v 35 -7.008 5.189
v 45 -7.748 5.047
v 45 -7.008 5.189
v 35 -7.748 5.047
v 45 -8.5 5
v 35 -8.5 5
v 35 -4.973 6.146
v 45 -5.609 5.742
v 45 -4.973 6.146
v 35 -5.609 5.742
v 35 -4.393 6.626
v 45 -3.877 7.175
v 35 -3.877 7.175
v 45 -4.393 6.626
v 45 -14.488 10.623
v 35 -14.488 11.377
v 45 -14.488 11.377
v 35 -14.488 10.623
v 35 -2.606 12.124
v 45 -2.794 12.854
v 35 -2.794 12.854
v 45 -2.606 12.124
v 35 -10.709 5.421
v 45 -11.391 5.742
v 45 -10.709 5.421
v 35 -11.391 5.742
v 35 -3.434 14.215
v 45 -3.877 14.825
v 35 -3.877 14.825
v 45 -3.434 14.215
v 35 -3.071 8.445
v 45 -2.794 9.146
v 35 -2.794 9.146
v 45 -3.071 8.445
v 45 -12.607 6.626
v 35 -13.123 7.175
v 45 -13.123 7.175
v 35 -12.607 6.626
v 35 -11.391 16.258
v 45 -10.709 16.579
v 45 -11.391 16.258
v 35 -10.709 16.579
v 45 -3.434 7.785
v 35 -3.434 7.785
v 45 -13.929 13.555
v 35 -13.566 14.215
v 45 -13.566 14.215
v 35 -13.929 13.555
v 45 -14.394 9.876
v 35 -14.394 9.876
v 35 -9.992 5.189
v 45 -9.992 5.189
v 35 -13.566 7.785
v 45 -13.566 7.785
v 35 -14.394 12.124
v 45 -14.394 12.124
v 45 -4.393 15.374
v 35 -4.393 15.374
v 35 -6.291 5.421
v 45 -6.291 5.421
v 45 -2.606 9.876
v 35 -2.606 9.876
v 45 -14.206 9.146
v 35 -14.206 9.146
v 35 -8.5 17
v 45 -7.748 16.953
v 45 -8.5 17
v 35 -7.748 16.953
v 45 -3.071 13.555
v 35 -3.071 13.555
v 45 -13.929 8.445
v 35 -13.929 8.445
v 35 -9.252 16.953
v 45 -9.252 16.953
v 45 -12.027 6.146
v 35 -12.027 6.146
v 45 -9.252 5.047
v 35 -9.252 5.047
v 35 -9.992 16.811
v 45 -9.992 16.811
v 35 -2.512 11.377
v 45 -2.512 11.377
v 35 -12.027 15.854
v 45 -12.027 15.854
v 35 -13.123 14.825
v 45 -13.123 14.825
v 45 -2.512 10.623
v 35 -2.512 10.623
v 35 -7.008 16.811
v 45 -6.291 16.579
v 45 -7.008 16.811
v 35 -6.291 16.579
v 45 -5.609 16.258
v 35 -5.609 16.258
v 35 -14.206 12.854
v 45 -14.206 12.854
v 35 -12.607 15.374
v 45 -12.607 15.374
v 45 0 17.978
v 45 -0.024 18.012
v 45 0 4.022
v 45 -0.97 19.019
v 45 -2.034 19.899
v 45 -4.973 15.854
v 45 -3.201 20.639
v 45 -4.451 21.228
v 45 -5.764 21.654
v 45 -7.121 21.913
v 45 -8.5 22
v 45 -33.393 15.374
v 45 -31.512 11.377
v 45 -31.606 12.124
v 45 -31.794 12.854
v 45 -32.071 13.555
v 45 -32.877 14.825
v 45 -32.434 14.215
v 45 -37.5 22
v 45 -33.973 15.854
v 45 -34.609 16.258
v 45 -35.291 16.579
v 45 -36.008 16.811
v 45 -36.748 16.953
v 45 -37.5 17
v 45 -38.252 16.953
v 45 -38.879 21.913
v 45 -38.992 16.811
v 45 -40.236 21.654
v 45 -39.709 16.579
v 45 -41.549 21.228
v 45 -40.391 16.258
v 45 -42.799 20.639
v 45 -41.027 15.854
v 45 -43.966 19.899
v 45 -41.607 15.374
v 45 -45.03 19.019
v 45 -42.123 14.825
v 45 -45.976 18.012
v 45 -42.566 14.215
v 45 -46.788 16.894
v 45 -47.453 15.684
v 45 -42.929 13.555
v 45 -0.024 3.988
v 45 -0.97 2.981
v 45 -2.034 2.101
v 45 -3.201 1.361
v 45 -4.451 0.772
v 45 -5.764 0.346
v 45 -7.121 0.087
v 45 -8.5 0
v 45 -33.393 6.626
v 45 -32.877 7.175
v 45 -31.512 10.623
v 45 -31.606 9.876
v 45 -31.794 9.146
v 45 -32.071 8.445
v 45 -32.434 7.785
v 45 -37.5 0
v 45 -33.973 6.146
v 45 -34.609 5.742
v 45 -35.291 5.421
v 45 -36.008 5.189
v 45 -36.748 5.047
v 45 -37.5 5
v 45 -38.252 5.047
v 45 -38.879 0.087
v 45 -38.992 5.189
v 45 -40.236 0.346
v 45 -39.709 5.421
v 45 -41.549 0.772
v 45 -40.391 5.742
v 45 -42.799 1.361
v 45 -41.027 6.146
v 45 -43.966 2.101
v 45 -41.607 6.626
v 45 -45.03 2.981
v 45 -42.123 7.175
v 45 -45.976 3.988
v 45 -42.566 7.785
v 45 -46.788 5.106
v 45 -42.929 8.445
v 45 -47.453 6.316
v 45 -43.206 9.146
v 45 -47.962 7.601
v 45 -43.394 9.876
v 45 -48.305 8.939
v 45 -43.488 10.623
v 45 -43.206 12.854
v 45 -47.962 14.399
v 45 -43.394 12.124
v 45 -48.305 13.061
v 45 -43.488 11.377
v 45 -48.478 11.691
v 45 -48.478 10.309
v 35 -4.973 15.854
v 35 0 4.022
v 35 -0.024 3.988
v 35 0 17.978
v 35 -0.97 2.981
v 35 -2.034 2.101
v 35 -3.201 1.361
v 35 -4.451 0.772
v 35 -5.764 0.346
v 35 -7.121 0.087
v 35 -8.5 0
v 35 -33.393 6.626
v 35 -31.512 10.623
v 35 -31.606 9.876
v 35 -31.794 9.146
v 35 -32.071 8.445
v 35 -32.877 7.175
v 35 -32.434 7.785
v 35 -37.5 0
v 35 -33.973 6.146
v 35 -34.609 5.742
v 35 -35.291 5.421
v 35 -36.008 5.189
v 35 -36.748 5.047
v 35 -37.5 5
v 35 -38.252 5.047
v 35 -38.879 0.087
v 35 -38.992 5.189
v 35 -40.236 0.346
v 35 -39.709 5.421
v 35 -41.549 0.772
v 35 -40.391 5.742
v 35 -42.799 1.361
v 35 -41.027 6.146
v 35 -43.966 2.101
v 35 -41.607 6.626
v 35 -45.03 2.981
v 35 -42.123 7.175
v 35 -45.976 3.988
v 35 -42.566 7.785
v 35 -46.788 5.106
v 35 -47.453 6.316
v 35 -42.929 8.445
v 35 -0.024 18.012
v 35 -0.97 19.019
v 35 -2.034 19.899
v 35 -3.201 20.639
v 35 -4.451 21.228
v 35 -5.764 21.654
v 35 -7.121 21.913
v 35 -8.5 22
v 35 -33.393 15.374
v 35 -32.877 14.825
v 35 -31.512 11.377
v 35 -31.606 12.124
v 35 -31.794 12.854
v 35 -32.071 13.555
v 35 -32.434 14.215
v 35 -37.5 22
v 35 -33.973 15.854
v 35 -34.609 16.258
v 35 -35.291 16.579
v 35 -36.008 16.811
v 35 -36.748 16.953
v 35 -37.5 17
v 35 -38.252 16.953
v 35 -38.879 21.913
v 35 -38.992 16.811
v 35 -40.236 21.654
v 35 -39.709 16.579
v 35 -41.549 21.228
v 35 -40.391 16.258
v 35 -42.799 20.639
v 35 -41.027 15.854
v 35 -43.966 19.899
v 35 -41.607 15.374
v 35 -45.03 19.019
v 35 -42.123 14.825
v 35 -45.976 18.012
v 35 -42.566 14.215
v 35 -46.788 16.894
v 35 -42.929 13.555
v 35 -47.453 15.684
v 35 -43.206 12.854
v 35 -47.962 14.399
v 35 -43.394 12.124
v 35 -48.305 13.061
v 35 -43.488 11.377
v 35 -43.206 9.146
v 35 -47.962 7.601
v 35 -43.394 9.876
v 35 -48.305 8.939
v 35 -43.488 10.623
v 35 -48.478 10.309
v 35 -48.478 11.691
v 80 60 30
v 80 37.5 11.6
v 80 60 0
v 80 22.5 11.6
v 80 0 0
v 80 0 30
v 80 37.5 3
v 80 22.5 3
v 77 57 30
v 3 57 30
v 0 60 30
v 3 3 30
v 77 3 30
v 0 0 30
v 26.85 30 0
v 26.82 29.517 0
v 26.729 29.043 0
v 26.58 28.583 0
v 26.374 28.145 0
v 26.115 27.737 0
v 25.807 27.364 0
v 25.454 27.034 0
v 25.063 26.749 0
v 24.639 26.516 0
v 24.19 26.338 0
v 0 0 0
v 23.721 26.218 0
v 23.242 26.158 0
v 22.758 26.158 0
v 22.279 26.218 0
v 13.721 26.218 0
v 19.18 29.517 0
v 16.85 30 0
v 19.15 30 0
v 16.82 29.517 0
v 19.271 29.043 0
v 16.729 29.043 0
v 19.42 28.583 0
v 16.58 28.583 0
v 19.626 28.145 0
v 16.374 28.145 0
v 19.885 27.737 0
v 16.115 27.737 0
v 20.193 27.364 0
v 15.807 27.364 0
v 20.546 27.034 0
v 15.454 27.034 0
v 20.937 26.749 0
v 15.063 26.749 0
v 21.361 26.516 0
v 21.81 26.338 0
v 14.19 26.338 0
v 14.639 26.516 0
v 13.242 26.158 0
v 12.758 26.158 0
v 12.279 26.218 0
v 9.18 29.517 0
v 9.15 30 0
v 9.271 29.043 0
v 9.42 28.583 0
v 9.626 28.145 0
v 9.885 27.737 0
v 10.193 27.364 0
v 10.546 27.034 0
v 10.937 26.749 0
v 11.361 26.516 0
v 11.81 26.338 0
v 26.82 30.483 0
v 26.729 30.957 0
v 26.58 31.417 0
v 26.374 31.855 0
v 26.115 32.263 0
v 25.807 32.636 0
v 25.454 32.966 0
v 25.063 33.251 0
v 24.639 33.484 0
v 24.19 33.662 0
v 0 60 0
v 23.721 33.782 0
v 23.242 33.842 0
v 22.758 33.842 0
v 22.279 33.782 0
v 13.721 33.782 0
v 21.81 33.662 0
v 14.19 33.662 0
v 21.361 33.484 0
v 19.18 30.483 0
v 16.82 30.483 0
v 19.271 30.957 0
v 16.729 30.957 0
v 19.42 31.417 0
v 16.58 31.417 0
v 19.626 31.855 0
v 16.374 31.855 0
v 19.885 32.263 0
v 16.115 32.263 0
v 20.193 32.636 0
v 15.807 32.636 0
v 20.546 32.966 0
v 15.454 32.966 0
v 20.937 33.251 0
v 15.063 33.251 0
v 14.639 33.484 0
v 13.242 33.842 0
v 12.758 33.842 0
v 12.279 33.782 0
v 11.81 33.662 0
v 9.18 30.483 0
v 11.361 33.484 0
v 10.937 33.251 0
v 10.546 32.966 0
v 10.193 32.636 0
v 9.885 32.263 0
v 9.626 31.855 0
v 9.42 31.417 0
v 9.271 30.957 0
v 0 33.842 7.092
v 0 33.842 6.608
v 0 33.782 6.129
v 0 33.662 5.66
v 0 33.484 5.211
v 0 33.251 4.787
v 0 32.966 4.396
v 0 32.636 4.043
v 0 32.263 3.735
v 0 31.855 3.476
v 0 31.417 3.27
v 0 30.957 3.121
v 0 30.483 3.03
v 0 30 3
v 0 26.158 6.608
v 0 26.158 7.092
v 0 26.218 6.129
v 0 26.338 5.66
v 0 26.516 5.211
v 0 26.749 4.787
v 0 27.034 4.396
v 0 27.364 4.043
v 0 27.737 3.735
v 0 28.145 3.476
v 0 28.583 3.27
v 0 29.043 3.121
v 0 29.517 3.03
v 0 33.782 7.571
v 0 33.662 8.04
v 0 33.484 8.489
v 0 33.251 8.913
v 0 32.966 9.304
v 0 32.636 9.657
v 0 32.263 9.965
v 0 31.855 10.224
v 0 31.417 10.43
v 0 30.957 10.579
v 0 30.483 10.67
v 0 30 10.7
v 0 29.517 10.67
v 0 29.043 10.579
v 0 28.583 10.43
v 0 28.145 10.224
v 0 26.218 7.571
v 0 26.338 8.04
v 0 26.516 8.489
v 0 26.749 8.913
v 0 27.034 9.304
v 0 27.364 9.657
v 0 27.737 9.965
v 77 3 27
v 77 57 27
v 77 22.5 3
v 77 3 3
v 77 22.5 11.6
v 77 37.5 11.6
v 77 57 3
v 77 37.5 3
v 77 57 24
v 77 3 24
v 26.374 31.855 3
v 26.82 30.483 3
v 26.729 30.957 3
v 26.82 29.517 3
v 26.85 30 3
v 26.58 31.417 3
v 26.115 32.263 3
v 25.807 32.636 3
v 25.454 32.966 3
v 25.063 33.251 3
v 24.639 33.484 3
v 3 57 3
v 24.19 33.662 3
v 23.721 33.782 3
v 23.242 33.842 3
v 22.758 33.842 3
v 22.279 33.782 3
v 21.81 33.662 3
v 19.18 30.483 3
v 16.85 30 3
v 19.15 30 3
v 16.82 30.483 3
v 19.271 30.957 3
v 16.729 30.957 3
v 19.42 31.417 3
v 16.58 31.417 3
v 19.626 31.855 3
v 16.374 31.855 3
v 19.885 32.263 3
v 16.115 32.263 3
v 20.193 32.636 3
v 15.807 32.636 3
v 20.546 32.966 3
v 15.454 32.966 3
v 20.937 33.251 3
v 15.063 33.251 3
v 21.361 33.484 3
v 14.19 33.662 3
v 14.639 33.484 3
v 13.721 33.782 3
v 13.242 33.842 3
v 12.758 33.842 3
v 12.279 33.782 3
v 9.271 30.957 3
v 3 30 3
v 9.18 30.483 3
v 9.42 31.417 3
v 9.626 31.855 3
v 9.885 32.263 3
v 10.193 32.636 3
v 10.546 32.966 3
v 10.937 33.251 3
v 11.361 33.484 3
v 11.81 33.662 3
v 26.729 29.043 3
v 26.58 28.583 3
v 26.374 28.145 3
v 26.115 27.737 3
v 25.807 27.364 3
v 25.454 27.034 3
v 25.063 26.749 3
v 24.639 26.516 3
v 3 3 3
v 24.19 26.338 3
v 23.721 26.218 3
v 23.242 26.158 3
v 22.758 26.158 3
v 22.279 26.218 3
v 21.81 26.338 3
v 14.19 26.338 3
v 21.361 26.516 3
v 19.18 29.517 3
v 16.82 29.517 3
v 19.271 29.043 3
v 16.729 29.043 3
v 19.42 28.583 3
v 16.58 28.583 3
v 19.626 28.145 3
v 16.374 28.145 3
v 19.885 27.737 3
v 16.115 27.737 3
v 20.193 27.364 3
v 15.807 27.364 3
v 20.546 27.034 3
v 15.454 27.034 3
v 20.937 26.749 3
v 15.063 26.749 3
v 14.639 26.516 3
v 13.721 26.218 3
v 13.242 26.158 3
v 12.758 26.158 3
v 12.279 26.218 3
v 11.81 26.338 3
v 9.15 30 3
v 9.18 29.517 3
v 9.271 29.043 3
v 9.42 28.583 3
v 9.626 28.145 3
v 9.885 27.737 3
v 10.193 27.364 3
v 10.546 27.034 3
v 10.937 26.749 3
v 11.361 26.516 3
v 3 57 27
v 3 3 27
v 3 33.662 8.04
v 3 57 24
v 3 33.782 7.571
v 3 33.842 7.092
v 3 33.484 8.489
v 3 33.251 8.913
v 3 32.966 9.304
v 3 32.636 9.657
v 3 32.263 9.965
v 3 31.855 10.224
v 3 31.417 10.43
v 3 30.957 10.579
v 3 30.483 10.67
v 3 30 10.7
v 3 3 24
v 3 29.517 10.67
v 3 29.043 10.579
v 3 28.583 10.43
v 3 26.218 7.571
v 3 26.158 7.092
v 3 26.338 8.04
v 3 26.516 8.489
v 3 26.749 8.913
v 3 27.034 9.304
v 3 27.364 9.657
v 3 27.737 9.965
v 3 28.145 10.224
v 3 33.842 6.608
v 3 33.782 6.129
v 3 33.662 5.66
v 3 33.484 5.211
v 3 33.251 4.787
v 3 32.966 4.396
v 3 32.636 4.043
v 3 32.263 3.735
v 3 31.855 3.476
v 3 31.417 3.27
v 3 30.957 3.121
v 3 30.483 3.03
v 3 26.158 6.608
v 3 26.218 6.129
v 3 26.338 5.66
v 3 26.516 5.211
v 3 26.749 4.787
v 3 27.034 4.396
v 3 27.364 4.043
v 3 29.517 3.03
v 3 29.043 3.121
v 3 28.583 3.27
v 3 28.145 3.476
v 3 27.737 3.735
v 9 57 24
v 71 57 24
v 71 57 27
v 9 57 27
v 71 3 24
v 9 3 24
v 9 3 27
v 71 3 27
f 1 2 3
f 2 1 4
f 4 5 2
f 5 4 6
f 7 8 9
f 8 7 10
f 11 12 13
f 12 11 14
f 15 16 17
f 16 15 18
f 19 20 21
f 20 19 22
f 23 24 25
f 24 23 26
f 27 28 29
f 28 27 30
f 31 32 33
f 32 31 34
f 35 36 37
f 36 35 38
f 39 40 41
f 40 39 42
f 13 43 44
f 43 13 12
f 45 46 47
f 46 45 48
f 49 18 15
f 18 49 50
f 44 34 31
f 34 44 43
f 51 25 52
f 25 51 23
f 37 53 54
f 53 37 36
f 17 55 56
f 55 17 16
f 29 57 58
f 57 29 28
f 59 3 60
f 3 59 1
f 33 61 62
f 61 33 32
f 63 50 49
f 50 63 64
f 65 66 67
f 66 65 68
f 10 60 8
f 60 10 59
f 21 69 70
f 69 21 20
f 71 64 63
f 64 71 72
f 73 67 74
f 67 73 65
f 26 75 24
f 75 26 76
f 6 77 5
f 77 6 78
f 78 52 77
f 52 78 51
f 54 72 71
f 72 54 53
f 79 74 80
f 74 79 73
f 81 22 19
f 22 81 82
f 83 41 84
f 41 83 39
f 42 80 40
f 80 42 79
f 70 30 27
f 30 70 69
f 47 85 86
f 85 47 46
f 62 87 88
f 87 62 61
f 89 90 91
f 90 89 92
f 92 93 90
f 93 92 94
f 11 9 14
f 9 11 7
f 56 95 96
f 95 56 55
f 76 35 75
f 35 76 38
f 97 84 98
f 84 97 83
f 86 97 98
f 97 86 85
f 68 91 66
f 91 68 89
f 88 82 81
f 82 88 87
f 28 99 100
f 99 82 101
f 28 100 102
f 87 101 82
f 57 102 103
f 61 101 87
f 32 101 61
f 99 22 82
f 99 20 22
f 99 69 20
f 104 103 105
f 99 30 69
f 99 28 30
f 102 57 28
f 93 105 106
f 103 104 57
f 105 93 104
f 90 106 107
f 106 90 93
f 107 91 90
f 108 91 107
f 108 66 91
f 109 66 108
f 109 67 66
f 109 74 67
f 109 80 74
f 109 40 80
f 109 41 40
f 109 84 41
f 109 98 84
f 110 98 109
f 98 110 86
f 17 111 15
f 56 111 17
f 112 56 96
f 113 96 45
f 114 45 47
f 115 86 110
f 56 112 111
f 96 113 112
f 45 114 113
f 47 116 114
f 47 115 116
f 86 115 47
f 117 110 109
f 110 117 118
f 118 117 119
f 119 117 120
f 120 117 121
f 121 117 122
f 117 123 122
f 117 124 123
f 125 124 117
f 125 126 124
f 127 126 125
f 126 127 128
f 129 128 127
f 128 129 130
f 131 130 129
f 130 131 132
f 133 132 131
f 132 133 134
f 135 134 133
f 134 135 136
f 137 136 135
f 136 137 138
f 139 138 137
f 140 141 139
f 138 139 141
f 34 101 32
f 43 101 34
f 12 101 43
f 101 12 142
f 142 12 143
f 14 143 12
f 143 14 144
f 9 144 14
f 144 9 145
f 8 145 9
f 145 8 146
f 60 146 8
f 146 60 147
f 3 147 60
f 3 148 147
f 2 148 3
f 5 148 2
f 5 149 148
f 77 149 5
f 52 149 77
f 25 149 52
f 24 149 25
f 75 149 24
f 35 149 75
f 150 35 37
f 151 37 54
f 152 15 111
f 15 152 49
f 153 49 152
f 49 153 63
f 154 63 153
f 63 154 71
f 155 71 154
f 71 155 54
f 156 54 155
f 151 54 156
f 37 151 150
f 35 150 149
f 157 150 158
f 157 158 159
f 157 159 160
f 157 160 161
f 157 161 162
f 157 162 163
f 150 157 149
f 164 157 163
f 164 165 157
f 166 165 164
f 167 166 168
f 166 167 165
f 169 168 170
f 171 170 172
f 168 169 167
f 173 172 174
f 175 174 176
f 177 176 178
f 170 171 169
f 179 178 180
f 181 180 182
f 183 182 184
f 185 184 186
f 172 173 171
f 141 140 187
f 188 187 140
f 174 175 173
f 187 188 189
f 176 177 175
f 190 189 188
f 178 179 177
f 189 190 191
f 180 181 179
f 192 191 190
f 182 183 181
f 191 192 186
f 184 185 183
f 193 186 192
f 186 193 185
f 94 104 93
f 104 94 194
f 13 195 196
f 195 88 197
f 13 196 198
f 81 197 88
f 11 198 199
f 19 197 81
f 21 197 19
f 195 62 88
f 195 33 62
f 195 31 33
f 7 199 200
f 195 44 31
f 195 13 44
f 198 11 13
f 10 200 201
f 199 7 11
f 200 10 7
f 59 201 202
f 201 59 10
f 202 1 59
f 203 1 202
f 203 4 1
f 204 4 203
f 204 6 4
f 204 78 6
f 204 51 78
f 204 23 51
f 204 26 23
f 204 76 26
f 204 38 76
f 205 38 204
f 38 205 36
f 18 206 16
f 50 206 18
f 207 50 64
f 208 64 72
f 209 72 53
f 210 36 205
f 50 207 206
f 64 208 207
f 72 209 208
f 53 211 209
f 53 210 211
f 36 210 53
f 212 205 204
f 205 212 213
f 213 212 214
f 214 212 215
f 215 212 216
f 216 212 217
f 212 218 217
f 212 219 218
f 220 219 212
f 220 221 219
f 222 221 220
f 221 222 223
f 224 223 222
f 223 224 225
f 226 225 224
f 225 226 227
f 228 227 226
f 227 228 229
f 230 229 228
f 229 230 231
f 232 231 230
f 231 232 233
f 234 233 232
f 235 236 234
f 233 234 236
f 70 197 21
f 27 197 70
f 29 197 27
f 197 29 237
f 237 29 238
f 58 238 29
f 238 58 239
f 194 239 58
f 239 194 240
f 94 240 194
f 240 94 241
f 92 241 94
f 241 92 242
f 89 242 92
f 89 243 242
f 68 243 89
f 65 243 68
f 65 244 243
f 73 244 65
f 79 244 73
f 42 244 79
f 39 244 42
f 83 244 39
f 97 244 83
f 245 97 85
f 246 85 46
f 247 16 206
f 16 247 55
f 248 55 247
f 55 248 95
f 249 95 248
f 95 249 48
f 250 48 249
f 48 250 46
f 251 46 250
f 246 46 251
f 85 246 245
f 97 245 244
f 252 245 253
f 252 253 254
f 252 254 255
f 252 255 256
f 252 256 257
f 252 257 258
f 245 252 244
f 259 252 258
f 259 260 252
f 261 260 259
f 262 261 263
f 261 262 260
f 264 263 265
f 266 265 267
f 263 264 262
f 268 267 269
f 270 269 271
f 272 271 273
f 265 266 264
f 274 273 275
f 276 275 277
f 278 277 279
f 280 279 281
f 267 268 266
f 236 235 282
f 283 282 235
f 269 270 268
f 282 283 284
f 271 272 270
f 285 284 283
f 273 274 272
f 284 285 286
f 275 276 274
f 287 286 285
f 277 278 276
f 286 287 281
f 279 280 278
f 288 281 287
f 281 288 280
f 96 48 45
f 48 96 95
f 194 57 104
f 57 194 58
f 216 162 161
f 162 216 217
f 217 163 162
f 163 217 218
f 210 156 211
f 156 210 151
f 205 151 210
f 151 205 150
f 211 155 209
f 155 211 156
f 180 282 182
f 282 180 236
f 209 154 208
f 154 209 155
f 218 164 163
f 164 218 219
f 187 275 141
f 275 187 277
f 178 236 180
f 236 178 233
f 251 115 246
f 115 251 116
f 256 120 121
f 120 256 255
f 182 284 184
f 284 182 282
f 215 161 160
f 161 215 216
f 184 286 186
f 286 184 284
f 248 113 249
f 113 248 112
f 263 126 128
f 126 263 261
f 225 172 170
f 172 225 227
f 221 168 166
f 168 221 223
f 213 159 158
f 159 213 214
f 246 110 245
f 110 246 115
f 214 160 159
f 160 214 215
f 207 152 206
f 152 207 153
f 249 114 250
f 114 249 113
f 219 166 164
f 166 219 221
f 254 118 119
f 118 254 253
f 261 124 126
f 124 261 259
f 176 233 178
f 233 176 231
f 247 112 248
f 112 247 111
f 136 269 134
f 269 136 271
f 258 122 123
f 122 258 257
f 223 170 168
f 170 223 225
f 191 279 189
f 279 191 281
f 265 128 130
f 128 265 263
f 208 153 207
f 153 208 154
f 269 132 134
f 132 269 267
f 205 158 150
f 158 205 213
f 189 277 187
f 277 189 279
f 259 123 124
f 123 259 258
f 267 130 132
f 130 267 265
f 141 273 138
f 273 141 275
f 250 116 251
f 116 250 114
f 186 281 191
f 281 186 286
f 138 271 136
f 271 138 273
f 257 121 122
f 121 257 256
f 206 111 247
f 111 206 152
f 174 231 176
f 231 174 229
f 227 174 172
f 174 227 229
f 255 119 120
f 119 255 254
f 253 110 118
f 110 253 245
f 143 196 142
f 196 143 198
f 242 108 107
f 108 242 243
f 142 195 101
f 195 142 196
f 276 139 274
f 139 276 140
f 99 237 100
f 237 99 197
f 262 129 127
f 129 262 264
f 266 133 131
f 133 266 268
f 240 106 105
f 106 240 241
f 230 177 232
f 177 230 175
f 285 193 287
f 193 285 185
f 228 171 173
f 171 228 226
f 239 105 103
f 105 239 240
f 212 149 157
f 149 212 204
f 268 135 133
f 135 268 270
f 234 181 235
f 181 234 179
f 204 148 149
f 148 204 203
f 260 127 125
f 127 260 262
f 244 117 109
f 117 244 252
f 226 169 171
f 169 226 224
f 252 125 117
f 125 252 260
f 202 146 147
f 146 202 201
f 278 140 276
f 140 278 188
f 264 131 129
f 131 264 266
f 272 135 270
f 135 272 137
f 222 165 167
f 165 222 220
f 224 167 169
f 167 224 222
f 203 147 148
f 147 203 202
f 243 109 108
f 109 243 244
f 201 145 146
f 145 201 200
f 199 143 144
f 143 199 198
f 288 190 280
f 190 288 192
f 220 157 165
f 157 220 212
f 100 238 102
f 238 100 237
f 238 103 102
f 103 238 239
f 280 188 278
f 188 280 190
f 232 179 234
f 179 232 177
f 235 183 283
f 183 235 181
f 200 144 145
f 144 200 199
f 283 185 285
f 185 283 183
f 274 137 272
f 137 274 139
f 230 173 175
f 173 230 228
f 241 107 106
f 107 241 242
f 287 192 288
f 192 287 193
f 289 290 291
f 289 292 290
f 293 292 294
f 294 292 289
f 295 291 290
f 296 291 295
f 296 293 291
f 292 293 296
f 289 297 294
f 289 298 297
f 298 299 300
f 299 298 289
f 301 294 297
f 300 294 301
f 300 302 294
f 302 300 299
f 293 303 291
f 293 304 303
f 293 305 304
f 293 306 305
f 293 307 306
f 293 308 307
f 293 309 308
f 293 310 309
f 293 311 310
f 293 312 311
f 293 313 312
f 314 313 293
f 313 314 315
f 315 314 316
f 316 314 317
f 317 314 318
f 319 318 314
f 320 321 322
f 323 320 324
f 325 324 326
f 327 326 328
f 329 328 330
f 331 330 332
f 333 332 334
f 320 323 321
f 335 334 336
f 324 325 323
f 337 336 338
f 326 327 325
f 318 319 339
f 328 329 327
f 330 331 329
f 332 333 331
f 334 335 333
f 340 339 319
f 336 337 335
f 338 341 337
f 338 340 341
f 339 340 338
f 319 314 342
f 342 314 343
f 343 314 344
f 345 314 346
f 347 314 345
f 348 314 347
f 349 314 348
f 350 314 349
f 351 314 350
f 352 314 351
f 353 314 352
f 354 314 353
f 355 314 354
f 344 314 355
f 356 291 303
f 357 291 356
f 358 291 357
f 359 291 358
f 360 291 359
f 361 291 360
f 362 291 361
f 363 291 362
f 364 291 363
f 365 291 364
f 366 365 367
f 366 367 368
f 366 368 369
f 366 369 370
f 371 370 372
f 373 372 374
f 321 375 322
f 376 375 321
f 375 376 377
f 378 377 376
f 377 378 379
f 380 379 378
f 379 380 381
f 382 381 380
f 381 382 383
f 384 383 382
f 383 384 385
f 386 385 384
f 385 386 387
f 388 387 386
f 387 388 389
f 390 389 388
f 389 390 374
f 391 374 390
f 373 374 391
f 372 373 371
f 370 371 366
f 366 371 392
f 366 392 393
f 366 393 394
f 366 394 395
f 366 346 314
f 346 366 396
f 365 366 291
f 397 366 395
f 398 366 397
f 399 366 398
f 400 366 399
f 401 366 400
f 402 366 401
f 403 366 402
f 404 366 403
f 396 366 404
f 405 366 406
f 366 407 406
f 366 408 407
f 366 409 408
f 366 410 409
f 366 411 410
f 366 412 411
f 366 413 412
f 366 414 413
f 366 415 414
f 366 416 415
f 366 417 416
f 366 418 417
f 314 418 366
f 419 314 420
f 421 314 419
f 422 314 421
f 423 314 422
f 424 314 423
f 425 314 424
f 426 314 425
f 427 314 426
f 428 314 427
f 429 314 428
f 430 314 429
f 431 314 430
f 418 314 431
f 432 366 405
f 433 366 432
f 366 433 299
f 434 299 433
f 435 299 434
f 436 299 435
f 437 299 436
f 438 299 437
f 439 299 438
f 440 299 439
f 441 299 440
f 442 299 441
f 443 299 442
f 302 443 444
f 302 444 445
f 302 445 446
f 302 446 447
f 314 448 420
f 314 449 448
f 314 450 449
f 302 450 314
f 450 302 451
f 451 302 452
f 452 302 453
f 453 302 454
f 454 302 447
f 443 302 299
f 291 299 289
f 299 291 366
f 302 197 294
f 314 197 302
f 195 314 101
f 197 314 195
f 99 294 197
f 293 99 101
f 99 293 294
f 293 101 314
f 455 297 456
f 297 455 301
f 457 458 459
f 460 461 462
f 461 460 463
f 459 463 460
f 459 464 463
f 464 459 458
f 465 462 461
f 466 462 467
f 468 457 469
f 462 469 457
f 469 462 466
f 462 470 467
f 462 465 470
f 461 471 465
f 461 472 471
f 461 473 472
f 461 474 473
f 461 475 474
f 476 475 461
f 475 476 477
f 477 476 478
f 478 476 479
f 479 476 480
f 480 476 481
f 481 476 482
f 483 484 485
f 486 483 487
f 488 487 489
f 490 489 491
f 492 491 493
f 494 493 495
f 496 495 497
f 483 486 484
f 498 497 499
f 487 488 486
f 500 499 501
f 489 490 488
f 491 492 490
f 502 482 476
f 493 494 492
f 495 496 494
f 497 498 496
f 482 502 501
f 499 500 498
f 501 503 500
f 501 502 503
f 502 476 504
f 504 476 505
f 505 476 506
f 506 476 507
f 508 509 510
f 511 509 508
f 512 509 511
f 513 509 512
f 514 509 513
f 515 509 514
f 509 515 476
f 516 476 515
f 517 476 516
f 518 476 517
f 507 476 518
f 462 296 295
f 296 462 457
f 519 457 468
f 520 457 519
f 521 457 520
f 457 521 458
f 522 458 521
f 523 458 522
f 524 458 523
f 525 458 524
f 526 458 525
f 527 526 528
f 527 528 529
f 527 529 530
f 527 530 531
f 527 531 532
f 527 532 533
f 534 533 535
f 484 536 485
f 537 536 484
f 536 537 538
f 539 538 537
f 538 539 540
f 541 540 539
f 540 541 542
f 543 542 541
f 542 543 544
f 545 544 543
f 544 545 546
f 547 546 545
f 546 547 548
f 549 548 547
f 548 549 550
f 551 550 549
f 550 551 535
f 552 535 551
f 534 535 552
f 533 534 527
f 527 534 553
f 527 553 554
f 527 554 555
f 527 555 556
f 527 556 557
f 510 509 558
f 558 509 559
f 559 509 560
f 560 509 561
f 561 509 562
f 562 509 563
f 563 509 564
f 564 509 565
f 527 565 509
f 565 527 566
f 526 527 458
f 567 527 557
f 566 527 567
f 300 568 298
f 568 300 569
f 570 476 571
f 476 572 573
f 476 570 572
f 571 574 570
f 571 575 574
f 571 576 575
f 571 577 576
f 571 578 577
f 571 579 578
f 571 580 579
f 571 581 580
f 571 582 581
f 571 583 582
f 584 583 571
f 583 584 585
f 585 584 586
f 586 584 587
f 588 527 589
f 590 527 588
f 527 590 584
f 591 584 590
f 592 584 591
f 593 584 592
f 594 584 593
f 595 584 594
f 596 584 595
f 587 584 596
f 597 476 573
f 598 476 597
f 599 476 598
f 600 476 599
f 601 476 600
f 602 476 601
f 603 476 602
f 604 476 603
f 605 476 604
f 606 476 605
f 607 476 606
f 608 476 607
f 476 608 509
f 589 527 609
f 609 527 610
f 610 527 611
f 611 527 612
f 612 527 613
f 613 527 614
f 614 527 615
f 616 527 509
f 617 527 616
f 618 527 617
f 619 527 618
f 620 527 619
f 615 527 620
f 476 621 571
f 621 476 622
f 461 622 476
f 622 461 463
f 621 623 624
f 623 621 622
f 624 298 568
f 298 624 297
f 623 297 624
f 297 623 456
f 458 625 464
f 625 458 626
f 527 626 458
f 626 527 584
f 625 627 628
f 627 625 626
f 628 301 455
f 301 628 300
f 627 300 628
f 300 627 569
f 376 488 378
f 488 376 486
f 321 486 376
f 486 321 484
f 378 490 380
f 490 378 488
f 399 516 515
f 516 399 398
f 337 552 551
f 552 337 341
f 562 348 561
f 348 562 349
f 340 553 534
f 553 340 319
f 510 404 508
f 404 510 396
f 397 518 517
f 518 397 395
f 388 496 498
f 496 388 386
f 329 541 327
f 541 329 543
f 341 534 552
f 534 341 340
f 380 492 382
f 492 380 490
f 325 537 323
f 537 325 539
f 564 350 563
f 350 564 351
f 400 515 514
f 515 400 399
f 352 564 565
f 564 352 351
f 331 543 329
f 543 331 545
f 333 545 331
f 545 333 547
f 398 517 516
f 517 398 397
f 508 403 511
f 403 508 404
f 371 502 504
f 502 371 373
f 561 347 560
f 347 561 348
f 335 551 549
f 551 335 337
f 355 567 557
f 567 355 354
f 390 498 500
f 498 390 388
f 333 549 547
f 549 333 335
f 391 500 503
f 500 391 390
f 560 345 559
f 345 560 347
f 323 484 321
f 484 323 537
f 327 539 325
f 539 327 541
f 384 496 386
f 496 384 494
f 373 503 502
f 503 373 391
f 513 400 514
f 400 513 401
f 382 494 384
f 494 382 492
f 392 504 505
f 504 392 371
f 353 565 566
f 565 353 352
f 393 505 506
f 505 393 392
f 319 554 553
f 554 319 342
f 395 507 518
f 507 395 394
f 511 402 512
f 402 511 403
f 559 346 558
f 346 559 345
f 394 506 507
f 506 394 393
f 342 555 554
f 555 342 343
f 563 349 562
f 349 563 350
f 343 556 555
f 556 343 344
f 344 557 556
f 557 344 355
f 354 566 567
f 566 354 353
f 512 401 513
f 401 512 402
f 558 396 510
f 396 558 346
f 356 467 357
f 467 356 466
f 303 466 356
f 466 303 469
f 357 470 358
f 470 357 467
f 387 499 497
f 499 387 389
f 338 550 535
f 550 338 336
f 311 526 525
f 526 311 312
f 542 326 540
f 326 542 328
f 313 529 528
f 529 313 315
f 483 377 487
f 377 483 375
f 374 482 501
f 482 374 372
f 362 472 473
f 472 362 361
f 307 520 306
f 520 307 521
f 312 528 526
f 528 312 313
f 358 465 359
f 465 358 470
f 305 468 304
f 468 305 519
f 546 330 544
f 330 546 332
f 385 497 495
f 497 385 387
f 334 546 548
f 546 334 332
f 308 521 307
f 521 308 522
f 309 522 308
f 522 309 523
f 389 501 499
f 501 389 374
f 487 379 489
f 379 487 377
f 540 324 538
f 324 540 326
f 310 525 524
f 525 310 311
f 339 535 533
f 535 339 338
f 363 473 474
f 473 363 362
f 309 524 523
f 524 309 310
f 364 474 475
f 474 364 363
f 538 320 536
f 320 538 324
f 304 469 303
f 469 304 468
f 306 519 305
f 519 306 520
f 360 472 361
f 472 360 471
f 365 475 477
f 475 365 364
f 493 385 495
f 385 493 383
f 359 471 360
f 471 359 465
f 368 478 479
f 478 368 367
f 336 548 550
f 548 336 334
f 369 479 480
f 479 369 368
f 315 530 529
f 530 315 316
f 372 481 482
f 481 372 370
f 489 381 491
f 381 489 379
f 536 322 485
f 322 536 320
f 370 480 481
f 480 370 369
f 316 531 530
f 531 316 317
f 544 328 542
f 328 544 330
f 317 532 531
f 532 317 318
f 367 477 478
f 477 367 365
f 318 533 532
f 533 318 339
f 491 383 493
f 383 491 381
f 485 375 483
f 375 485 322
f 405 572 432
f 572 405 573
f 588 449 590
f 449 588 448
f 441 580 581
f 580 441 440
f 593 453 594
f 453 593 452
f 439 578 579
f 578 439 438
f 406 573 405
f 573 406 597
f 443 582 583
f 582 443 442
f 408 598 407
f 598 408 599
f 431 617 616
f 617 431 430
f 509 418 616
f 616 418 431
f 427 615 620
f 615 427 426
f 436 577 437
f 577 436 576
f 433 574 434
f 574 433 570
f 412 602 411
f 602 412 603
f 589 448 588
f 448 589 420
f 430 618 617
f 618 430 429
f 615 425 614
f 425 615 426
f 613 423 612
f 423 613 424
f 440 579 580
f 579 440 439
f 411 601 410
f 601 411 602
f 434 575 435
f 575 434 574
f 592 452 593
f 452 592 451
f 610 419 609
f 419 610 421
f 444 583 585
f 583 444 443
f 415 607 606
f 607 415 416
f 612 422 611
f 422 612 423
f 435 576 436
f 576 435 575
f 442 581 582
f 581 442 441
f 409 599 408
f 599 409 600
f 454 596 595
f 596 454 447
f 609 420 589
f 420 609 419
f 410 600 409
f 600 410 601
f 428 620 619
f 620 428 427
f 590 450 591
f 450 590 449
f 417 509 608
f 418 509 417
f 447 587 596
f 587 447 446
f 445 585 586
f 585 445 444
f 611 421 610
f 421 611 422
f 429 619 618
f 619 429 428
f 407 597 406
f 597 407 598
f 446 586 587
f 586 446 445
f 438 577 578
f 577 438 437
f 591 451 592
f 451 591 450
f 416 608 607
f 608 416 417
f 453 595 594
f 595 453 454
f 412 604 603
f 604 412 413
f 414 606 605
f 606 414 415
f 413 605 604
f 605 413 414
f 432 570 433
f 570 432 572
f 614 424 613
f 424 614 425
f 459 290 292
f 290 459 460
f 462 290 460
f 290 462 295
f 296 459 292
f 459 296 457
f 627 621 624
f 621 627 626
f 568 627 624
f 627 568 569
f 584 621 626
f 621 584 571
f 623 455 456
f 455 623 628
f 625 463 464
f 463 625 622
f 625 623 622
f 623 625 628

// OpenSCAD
box_external_width = 80;
box_external_depth = 60;
box_external_height = 30;

size_of_walls = 3;

box_internal_width = box_external_width-(size_of_walls*2);
box_internal_depth = box_external_depth -size_of_walls*2;
box_internal_height = box_external_height - size_of_walls;

hole_diameter = 7.7;

connector_x = 15;
connector_y = 8.6;

Connector_body_width = 10;
Connector_tube_diameter = 22;
threaded_shaft_diameter = 12;
main_body_distance_between_two_main_bodies = 29; 


module box(){
    difference(){
    cube([box_external_width,box_external_depth,box_external_height]);
    translate([(box_external_width-box_internal_width)/2,(box_external_depth-box_internal_depth)/2,(box_external_height-box_internal_height)]){cube([box_internal_width,box_internal_depth,box_internal_height]);}
    }
}
    
module holes(x_position,y_position,z_position){
    translate([x_position,y_position,z_position]){
    cylinder(h=(box_external_height-box_internal_height), r=hole_diameter/2, $fn=50);
    }
}
   
module main_body_tube(){
    difference(){
        union(){
    hull(){
    translate([(box_external_width/2)-(Connector_body_width/2),-(Connector_tube_diameter/2-2.5),(Connector_tube_diameter/2)]){
        rotate ([0,90,0]){
            cylinder(h=Connector_body_width, r=(Connector_tube_diameter)/2, $fn=50);
            translate([0,-(main_body_distance_between_two_main_bodies),0]){cylinder(h=Connector_body_width, r=(Connector_tube_diameter)/2, $fn=50);}}
    }}}
    translate([(box_external_width/2)-(Connector_body_width/2),-(Connector_tube_diameter/2-2.5),(Connector_tube_diameter/2)]){
        rotate ([0,90,0]){
            cylinder(h=Connector_body_width, r=(threaded_shaft_diameter)/2, $fn=50);
            translate([0,-(main_body_distance_between_two_main_bodies),0]){cylinder(h=Connector_body_width, r=(threaded_shaft_diameter)/2, $fn=50);}}
    }}
}



main_body_tube();
difference(){
box();

holes(10+size_of_walls,30,0);
holes(20+size_of_walls,30,0);
rotate ([0,-90,0])holes(size_of_walls+(hole_diameter/2),30,-size_of_walls);
translate([box_internal_width+size_of_walls,(box_external_depth/2)-(connector_x/2),size_of_walls]){cube([size_of_walls,connector_x,connector_y]);}    

}
translate([size_of_walls,size_of_walls,box_external_height-(size_of_walls*2)]){cube([6,box_internal_depth,3]);}
translate([(box_external_width-size_of_walls-6),size_of_walls,box_external_height-(size_of_walls*2)]){cube([6,box_internal_depth,3]);}


;
